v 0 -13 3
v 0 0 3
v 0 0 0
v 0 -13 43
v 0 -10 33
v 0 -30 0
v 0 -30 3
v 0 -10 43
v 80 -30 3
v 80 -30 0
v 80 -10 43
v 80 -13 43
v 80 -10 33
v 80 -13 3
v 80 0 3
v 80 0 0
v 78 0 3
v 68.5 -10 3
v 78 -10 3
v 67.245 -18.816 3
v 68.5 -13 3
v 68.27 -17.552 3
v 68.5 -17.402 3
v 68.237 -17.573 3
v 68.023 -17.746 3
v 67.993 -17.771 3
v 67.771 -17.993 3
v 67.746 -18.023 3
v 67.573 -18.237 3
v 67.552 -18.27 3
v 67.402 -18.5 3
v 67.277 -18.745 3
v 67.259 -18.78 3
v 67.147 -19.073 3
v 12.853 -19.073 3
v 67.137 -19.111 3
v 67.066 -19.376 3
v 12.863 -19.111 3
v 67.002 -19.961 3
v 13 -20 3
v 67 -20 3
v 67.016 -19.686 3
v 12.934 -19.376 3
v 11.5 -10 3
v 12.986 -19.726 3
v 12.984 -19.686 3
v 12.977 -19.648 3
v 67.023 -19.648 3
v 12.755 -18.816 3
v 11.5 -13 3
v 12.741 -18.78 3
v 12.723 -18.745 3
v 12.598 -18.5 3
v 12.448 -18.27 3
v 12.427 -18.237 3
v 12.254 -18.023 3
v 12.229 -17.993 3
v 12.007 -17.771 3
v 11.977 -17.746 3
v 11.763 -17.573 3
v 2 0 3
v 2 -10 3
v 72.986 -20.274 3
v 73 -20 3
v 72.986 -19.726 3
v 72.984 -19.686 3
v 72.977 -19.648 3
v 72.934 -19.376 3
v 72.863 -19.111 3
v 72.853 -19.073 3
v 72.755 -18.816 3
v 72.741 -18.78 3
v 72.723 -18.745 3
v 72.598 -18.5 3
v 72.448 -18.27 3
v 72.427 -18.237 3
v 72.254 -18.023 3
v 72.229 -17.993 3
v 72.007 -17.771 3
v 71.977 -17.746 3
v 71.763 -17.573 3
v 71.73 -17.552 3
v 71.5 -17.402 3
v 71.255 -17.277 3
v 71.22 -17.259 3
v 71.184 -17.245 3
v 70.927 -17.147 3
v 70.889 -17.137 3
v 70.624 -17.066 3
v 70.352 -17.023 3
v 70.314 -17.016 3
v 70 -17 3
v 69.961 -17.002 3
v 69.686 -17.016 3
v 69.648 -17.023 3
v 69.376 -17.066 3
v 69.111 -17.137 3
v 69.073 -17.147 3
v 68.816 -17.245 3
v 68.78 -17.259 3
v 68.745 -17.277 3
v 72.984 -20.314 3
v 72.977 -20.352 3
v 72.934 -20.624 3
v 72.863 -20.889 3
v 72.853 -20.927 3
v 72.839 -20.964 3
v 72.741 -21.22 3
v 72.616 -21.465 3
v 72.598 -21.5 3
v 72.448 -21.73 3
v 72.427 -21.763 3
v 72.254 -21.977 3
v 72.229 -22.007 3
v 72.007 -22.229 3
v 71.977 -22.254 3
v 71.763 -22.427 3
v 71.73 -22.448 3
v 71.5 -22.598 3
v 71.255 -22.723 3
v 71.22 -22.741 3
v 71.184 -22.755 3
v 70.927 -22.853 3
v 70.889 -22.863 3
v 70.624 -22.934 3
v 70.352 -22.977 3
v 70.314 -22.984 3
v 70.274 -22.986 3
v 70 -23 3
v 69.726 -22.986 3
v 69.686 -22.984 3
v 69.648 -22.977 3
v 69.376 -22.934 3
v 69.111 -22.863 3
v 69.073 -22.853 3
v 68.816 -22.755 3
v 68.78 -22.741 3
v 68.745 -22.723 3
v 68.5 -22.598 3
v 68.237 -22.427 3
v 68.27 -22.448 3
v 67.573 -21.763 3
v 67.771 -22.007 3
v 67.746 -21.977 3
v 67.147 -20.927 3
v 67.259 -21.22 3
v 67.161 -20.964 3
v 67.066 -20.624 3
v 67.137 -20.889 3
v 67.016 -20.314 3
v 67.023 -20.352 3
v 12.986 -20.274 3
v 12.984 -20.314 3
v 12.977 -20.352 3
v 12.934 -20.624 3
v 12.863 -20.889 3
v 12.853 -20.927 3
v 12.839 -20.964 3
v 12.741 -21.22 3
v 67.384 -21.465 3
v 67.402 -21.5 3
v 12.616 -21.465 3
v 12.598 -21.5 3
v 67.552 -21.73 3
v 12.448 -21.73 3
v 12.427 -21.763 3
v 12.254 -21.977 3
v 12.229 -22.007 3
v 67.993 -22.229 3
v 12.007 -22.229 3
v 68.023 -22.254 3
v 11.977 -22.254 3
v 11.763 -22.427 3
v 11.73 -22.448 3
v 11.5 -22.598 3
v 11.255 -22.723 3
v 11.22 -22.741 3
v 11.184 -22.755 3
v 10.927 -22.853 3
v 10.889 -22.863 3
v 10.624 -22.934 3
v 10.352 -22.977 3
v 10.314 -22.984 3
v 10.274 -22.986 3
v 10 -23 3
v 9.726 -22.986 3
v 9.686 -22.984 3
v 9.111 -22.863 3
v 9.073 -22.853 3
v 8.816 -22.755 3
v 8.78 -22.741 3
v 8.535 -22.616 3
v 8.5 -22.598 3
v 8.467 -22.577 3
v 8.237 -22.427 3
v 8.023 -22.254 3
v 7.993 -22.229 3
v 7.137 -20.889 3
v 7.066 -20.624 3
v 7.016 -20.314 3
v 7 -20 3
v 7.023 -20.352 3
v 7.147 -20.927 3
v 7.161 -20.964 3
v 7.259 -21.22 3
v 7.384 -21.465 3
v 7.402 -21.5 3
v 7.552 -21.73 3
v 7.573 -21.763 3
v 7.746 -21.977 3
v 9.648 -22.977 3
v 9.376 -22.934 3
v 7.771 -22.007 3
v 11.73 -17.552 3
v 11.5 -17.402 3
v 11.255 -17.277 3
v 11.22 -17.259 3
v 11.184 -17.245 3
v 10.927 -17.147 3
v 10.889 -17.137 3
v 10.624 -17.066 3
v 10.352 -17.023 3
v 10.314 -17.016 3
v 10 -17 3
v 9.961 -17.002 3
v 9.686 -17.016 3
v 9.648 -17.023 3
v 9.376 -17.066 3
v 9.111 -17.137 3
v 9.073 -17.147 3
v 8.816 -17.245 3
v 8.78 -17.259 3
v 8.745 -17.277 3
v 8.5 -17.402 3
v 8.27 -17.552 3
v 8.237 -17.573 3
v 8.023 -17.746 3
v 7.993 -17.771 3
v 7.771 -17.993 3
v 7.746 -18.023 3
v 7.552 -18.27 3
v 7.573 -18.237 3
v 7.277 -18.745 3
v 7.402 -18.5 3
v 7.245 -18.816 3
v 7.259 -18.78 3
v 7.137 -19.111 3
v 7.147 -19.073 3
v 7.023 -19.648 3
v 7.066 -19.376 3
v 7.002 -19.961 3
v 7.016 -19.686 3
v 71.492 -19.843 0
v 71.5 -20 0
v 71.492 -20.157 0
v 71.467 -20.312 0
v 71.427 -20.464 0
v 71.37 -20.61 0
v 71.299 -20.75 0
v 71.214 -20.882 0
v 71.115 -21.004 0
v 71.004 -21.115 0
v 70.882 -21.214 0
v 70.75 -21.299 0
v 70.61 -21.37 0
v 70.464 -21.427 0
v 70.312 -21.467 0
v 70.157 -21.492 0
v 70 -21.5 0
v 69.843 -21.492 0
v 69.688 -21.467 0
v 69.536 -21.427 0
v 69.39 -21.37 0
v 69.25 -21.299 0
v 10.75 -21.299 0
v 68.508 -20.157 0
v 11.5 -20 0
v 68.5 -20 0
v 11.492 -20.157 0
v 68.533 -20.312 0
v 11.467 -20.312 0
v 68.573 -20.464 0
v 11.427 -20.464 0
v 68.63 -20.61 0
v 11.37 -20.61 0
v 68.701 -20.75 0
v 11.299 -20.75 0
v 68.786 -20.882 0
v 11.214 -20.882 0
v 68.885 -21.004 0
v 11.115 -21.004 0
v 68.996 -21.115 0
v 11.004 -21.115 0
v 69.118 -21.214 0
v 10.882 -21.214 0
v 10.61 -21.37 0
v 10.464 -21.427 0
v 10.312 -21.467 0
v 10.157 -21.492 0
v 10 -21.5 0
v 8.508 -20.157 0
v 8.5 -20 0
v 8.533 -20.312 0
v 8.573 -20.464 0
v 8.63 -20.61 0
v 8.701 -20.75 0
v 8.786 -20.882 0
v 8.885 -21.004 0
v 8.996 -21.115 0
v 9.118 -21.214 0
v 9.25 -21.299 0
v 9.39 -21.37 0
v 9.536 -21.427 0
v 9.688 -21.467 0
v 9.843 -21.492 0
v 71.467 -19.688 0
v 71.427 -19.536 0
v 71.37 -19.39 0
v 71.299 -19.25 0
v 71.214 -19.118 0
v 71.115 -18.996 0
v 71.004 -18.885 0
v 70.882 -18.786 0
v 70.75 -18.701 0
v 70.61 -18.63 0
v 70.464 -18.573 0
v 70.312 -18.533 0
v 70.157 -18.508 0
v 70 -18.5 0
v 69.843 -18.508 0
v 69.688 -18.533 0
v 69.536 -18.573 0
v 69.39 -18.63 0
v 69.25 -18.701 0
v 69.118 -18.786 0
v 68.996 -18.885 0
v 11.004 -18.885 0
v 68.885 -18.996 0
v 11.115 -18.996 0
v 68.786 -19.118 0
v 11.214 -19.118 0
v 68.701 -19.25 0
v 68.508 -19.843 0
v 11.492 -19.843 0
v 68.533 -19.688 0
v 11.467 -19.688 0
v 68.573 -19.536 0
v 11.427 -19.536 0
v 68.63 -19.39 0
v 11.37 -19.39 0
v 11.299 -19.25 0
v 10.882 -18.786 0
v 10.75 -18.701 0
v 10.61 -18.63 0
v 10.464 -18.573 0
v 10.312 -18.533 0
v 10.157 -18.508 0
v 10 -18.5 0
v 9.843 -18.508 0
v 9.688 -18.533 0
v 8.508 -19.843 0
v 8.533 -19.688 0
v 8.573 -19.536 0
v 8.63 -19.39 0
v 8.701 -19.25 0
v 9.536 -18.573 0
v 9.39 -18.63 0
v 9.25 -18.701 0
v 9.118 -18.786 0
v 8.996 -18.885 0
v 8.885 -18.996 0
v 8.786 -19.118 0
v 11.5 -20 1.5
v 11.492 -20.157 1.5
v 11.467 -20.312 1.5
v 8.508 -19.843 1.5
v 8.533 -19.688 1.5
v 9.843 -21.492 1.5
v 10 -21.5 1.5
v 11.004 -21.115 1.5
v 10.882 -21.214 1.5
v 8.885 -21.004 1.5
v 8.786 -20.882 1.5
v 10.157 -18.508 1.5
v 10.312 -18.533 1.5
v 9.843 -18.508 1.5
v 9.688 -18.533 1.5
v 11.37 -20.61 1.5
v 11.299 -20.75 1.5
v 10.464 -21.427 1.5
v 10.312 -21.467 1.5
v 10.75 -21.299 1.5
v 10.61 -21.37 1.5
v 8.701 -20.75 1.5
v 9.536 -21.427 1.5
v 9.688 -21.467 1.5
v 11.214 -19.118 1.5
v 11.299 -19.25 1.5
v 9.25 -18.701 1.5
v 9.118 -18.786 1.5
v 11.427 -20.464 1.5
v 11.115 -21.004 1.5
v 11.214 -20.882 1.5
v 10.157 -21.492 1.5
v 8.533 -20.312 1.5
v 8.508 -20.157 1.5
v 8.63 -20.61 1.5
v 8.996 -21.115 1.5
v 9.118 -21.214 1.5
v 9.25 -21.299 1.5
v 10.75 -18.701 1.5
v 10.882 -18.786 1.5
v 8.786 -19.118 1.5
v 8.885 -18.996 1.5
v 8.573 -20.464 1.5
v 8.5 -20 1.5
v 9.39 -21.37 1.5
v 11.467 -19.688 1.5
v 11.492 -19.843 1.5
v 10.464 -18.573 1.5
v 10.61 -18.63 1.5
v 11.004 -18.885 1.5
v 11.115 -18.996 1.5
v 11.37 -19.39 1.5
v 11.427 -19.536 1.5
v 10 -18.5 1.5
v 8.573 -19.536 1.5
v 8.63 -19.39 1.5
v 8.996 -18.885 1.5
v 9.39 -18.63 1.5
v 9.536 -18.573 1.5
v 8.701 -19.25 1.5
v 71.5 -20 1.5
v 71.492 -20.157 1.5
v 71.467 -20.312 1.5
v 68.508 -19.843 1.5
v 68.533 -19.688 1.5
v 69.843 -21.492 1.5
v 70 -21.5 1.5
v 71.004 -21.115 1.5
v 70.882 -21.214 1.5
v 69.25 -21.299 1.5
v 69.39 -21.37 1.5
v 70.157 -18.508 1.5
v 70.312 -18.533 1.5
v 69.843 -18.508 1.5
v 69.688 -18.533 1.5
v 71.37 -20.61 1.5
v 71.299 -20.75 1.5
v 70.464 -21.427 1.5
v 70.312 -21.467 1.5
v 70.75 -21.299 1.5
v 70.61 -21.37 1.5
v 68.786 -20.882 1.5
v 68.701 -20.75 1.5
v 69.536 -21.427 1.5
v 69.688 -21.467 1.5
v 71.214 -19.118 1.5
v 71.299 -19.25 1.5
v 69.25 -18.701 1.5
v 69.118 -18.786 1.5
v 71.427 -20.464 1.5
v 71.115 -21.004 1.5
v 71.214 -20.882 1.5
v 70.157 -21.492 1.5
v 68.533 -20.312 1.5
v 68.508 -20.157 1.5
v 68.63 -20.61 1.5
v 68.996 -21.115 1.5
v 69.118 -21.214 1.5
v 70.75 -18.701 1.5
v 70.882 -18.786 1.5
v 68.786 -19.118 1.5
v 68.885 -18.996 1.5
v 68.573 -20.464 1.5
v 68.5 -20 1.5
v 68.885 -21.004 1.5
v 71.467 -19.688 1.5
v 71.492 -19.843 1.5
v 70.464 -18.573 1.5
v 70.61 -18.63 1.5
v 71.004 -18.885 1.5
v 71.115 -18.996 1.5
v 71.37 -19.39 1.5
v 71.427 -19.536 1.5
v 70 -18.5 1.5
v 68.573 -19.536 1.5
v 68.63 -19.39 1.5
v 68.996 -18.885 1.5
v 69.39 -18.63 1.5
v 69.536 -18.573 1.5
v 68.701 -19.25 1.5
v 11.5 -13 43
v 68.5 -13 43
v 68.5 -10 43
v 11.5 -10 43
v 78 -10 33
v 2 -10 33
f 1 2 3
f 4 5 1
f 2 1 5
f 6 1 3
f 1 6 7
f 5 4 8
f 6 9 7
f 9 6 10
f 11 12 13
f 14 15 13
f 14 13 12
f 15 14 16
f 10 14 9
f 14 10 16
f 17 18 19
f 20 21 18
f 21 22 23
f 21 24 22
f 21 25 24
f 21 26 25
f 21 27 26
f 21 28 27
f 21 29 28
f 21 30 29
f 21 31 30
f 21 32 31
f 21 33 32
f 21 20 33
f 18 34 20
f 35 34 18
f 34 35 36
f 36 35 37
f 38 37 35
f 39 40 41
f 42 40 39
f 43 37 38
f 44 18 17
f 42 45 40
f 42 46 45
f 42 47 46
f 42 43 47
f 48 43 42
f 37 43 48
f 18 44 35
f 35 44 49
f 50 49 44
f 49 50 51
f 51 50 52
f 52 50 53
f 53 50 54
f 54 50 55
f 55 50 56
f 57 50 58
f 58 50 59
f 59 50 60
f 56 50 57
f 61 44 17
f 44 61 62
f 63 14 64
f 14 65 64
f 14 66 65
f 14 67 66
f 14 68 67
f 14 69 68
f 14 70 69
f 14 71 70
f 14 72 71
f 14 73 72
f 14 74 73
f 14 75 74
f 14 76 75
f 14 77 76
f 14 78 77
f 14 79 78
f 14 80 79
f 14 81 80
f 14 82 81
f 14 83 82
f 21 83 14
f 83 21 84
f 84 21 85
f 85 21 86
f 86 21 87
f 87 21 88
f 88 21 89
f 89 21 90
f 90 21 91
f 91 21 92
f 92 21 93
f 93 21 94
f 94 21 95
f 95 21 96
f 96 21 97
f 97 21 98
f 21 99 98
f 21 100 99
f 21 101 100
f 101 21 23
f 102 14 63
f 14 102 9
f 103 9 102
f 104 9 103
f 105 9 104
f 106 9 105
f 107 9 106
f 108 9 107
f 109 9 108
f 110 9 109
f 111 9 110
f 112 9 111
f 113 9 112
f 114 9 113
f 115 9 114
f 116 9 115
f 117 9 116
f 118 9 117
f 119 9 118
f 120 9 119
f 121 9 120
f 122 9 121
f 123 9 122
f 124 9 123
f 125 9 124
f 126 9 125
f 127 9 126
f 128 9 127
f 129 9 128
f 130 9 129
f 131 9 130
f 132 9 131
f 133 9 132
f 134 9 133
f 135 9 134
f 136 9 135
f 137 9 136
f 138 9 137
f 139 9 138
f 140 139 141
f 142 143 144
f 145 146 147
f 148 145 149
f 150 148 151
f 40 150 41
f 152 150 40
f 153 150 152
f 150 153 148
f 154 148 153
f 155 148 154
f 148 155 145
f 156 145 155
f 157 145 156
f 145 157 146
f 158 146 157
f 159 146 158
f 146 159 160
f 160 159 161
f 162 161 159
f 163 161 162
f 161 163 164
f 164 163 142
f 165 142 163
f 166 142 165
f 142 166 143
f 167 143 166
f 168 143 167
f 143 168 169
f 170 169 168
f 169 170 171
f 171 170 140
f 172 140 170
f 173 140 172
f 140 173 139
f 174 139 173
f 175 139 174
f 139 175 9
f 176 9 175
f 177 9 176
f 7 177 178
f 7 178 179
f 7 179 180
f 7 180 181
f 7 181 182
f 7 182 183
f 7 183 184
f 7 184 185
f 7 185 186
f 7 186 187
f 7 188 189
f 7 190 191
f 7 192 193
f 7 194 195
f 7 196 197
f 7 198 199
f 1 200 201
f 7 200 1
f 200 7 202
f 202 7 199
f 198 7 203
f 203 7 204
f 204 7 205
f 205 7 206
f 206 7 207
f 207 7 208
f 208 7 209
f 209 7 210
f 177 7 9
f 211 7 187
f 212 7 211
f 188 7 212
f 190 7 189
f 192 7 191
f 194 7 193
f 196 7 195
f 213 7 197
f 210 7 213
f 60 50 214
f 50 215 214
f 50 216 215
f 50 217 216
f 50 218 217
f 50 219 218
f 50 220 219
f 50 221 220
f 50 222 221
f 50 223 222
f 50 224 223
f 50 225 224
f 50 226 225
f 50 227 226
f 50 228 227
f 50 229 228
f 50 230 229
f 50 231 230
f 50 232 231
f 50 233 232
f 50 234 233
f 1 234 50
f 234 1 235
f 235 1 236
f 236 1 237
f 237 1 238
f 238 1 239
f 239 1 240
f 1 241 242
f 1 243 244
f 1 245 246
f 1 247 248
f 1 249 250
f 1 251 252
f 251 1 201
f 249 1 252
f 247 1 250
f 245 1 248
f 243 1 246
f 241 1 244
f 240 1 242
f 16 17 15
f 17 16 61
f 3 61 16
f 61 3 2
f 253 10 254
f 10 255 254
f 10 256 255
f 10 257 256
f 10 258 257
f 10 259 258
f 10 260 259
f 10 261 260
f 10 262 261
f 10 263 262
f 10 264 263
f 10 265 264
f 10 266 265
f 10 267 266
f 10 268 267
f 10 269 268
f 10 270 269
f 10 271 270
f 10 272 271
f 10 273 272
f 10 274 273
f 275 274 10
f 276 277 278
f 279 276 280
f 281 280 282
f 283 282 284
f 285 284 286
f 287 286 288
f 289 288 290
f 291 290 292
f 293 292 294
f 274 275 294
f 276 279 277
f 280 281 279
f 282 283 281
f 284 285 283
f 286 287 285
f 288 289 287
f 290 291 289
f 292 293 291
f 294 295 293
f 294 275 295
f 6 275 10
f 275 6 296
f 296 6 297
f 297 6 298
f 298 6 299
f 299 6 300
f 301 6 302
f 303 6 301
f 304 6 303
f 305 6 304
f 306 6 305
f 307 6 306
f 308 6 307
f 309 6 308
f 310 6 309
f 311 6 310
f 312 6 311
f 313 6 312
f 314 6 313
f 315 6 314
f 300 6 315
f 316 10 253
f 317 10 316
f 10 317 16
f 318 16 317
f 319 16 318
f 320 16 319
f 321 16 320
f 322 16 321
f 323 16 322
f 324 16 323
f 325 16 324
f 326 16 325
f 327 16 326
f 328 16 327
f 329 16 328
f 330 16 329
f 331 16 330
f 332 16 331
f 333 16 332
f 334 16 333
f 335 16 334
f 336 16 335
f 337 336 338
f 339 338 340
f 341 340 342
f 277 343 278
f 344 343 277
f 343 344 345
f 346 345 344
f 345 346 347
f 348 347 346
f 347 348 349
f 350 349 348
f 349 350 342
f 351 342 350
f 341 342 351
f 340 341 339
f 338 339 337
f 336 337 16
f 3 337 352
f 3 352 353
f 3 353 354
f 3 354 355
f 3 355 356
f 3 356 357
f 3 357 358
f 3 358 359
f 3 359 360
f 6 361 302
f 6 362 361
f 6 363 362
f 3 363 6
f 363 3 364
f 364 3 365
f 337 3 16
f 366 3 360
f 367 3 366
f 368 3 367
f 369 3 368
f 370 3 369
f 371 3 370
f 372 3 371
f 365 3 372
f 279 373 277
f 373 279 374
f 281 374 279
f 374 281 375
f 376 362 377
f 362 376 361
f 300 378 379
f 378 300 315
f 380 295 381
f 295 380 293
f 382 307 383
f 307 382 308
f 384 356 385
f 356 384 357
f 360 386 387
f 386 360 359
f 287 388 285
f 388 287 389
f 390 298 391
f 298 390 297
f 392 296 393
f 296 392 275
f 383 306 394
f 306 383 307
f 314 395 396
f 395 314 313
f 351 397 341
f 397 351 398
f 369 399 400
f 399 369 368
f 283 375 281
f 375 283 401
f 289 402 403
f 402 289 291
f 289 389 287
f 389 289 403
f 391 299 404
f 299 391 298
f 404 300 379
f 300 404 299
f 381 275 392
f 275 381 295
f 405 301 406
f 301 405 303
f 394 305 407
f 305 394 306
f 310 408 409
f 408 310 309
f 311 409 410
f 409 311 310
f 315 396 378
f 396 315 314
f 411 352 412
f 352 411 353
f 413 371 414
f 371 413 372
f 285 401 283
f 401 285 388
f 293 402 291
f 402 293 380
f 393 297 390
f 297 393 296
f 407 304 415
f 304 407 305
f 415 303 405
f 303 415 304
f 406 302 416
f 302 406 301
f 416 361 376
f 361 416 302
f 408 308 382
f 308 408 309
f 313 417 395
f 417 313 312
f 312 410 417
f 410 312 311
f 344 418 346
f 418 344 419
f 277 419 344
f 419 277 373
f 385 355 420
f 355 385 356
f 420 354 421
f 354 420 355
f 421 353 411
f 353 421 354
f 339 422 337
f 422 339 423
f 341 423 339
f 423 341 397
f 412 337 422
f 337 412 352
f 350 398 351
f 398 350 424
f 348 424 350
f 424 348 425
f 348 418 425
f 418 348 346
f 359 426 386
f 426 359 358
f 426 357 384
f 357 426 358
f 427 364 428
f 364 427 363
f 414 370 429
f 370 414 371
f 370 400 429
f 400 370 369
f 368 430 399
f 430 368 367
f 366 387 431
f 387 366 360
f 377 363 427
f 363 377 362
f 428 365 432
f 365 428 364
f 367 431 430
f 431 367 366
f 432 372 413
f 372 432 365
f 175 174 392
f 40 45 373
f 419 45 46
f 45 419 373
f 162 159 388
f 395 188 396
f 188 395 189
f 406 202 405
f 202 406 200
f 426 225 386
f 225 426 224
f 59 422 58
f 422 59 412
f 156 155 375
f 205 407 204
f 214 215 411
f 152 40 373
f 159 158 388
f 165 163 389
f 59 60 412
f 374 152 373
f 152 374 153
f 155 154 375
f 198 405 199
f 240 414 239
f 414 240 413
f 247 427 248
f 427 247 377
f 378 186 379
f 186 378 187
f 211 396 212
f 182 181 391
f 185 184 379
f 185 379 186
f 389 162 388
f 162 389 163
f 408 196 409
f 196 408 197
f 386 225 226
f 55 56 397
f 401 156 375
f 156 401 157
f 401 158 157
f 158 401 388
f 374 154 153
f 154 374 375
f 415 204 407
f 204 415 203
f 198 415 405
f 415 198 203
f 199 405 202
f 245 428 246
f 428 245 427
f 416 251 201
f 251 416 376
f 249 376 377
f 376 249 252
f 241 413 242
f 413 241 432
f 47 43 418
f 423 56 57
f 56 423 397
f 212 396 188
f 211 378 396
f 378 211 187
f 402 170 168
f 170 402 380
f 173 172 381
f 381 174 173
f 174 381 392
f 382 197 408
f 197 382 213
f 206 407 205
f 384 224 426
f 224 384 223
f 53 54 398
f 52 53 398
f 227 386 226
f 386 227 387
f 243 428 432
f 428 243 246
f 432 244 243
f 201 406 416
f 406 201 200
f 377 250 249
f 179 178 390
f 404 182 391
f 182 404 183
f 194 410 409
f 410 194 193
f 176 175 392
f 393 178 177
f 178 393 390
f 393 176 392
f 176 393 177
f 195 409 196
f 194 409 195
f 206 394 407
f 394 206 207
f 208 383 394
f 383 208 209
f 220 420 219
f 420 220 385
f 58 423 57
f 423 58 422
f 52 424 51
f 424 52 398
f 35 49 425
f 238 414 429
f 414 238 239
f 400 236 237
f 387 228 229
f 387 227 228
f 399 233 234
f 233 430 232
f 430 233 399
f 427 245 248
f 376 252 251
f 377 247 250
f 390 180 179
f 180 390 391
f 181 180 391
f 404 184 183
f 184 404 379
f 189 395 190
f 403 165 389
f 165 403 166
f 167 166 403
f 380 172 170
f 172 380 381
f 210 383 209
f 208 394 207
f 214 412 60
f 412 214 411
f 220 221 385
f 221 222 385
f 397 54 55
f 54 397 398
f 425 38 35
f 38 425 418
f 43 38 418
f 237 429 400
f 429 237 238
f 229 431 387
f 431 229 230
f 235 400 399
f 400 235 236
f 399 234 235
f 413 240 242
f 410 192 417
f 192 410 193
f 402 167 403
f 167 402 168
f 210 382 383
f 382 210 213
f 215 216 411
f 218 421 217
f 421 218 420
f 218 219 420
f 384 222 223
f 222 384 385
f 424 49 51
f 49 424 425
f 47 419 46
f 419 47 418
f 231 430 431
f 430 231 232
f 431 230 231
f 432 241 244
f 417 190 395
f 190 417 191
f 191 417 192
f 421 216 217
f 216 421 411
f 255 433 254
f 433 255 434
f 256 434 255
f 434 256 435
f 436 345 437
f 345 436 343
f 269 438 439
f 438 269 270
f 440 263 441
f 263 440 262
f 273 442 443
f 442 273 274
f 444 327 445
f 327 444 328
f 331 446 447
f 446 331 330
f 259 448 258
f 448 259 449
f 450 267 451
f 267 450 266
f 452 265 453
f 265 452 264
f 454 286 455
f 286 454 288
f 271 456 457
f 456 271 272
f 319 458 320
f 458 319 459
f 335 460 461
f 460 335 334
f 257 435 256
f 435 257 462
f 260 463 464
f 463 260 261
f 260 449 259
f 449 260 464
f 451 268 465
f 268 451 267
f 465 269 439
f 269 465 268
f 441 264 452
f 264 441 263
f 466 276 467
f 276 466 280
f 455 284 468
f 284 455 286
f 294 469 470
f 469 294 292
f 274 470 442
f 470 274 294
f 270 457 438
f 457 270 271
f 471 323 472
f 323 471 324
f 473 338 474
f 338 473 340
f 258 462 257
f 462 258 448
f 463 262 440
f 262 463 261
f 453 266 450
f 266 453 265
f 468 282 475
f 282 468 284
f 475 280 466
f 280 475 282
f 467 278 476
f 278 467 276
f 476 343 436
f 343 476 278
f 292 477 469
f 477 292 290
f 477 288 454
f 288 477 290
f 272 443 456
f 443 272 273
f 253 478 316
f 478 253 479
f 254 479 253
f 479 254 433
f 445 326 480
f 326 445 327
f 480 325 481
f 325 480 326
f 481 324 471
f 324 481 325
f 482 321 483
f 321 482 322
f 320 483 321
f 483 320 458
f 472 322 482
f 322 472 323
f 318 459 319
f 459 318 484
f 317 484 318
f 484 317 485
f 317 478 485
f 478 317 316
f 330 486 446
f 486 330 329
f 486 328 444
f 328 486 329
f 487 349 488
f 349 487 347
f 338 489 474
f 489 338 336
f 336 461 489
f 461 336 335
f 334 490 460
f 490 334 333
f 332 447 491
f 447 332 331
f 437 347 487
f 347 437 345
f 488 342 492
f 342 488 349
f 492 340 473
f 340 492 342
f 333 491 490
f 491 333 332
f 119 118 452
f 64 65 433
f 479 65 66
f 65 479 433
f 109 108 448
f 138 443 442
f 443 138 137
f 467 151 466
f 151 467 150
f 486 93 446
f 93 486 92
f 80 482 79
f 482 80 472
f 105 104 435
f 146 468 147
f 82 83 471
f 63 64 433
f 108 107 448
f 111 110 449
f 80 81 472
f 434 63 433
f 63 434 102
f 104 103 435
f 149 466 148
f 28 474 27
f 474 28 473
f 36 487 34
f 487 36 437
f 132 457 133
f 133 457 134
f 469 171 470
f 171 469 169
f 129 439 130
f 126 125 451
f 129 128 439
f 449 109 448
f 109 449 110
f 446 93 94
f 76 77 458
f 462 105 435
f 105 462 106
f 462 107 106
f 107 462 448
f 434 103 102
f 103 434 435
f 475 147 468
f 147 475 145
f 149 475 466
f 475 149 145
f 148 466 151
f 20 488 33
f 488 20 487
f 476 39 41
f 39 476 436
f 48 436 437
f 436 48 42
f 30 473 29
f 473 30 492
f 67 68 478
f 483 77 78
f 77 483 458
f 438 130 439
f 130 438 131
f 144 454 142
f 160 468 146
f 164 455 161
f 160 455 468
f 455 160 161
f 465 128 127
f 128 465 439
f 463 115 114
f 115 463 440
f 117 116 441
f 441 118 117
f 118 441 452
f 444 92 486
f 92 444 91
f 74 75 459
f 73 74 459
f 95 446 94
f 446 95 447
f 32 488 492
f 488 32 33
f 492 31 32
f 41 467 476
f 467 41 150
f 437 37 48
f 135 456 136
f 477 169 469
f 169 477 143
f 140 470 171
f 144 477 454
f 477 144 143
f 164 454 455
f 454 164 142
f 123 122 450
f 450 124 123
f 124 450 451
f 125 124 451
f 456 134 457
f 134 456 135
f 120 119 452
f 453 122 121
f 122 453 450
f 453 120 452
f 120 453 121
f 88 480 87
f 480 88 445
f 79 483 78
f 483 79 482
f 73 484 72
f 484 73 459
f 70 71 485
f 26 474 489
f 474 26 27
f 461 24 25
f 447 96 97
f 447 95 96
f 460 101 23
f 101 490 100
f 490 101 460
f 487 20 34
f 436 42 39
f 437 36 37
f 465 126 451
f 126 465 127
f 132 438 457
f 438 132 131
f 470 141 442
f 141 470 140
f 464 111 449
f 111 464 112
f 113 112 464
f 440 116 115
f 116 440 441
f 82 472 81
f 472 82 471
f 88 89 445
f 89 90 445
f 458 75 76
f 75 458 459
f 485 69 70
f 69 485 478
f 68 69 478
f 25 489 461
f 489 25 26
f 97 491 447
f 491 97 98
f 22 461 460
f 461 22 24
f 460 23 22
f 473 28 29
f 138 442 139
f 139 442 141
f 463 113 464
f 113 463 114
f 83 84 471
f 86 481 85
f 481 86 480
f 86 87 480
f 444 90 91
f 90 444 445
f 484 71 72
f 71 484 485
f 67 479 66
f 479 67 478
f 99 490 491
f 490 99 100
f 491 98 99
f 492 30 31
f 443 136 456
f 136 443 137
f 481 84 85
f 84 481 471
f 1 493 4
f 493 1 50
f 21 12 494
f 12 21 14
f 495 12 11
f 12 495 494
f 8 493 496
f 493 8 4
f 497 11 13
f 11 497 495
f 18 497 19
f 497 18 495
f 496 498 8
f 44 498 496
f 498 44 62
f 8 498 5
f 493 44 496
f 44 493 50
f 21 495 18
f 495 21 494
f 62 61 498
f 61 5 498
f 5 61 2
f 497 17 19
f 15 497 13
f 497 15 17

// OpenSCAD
$fn = 60;

rotate([90, 0, 0]) {
 difference () {
   cube([80, 3, 30]);
   translate([10, 4, 20]) rotate([90, 0, 0]) cylinder(5, r=1.5);
   translate([10, 1.5, 20]) rotate([-90, 0, 0]) cylinder(2, r1=1.5, r2=3.5);
   translate([70, 4, 20]) rotate([90, 0, 0]) cylinder(5, r=1.5);
   translate([70, 1.5, 20]) rotate([-90, 0, 0]) cylinder(2, r1=1.5, r2=3.5);
 

 
   }
 
difference () {
  translate([0, 3, 10]) cube([80, 40, 3]);
  translate([(80-57)/2, 3, 9]) cube([57, 41, 5]);
}




translate([2, 3, 0]) rotate([0, -90, 0]) {
linear_extrude(height=2) {
polygon([[0, 0], [10, 0], [10, 30]]);
}
}

translate([80, 3, 0]) rotate([0, -90, 0]) {
linear_extrude(height=2) {
polygon([[0, 0], [10, 0], [10, 30]]);
}
}

}
